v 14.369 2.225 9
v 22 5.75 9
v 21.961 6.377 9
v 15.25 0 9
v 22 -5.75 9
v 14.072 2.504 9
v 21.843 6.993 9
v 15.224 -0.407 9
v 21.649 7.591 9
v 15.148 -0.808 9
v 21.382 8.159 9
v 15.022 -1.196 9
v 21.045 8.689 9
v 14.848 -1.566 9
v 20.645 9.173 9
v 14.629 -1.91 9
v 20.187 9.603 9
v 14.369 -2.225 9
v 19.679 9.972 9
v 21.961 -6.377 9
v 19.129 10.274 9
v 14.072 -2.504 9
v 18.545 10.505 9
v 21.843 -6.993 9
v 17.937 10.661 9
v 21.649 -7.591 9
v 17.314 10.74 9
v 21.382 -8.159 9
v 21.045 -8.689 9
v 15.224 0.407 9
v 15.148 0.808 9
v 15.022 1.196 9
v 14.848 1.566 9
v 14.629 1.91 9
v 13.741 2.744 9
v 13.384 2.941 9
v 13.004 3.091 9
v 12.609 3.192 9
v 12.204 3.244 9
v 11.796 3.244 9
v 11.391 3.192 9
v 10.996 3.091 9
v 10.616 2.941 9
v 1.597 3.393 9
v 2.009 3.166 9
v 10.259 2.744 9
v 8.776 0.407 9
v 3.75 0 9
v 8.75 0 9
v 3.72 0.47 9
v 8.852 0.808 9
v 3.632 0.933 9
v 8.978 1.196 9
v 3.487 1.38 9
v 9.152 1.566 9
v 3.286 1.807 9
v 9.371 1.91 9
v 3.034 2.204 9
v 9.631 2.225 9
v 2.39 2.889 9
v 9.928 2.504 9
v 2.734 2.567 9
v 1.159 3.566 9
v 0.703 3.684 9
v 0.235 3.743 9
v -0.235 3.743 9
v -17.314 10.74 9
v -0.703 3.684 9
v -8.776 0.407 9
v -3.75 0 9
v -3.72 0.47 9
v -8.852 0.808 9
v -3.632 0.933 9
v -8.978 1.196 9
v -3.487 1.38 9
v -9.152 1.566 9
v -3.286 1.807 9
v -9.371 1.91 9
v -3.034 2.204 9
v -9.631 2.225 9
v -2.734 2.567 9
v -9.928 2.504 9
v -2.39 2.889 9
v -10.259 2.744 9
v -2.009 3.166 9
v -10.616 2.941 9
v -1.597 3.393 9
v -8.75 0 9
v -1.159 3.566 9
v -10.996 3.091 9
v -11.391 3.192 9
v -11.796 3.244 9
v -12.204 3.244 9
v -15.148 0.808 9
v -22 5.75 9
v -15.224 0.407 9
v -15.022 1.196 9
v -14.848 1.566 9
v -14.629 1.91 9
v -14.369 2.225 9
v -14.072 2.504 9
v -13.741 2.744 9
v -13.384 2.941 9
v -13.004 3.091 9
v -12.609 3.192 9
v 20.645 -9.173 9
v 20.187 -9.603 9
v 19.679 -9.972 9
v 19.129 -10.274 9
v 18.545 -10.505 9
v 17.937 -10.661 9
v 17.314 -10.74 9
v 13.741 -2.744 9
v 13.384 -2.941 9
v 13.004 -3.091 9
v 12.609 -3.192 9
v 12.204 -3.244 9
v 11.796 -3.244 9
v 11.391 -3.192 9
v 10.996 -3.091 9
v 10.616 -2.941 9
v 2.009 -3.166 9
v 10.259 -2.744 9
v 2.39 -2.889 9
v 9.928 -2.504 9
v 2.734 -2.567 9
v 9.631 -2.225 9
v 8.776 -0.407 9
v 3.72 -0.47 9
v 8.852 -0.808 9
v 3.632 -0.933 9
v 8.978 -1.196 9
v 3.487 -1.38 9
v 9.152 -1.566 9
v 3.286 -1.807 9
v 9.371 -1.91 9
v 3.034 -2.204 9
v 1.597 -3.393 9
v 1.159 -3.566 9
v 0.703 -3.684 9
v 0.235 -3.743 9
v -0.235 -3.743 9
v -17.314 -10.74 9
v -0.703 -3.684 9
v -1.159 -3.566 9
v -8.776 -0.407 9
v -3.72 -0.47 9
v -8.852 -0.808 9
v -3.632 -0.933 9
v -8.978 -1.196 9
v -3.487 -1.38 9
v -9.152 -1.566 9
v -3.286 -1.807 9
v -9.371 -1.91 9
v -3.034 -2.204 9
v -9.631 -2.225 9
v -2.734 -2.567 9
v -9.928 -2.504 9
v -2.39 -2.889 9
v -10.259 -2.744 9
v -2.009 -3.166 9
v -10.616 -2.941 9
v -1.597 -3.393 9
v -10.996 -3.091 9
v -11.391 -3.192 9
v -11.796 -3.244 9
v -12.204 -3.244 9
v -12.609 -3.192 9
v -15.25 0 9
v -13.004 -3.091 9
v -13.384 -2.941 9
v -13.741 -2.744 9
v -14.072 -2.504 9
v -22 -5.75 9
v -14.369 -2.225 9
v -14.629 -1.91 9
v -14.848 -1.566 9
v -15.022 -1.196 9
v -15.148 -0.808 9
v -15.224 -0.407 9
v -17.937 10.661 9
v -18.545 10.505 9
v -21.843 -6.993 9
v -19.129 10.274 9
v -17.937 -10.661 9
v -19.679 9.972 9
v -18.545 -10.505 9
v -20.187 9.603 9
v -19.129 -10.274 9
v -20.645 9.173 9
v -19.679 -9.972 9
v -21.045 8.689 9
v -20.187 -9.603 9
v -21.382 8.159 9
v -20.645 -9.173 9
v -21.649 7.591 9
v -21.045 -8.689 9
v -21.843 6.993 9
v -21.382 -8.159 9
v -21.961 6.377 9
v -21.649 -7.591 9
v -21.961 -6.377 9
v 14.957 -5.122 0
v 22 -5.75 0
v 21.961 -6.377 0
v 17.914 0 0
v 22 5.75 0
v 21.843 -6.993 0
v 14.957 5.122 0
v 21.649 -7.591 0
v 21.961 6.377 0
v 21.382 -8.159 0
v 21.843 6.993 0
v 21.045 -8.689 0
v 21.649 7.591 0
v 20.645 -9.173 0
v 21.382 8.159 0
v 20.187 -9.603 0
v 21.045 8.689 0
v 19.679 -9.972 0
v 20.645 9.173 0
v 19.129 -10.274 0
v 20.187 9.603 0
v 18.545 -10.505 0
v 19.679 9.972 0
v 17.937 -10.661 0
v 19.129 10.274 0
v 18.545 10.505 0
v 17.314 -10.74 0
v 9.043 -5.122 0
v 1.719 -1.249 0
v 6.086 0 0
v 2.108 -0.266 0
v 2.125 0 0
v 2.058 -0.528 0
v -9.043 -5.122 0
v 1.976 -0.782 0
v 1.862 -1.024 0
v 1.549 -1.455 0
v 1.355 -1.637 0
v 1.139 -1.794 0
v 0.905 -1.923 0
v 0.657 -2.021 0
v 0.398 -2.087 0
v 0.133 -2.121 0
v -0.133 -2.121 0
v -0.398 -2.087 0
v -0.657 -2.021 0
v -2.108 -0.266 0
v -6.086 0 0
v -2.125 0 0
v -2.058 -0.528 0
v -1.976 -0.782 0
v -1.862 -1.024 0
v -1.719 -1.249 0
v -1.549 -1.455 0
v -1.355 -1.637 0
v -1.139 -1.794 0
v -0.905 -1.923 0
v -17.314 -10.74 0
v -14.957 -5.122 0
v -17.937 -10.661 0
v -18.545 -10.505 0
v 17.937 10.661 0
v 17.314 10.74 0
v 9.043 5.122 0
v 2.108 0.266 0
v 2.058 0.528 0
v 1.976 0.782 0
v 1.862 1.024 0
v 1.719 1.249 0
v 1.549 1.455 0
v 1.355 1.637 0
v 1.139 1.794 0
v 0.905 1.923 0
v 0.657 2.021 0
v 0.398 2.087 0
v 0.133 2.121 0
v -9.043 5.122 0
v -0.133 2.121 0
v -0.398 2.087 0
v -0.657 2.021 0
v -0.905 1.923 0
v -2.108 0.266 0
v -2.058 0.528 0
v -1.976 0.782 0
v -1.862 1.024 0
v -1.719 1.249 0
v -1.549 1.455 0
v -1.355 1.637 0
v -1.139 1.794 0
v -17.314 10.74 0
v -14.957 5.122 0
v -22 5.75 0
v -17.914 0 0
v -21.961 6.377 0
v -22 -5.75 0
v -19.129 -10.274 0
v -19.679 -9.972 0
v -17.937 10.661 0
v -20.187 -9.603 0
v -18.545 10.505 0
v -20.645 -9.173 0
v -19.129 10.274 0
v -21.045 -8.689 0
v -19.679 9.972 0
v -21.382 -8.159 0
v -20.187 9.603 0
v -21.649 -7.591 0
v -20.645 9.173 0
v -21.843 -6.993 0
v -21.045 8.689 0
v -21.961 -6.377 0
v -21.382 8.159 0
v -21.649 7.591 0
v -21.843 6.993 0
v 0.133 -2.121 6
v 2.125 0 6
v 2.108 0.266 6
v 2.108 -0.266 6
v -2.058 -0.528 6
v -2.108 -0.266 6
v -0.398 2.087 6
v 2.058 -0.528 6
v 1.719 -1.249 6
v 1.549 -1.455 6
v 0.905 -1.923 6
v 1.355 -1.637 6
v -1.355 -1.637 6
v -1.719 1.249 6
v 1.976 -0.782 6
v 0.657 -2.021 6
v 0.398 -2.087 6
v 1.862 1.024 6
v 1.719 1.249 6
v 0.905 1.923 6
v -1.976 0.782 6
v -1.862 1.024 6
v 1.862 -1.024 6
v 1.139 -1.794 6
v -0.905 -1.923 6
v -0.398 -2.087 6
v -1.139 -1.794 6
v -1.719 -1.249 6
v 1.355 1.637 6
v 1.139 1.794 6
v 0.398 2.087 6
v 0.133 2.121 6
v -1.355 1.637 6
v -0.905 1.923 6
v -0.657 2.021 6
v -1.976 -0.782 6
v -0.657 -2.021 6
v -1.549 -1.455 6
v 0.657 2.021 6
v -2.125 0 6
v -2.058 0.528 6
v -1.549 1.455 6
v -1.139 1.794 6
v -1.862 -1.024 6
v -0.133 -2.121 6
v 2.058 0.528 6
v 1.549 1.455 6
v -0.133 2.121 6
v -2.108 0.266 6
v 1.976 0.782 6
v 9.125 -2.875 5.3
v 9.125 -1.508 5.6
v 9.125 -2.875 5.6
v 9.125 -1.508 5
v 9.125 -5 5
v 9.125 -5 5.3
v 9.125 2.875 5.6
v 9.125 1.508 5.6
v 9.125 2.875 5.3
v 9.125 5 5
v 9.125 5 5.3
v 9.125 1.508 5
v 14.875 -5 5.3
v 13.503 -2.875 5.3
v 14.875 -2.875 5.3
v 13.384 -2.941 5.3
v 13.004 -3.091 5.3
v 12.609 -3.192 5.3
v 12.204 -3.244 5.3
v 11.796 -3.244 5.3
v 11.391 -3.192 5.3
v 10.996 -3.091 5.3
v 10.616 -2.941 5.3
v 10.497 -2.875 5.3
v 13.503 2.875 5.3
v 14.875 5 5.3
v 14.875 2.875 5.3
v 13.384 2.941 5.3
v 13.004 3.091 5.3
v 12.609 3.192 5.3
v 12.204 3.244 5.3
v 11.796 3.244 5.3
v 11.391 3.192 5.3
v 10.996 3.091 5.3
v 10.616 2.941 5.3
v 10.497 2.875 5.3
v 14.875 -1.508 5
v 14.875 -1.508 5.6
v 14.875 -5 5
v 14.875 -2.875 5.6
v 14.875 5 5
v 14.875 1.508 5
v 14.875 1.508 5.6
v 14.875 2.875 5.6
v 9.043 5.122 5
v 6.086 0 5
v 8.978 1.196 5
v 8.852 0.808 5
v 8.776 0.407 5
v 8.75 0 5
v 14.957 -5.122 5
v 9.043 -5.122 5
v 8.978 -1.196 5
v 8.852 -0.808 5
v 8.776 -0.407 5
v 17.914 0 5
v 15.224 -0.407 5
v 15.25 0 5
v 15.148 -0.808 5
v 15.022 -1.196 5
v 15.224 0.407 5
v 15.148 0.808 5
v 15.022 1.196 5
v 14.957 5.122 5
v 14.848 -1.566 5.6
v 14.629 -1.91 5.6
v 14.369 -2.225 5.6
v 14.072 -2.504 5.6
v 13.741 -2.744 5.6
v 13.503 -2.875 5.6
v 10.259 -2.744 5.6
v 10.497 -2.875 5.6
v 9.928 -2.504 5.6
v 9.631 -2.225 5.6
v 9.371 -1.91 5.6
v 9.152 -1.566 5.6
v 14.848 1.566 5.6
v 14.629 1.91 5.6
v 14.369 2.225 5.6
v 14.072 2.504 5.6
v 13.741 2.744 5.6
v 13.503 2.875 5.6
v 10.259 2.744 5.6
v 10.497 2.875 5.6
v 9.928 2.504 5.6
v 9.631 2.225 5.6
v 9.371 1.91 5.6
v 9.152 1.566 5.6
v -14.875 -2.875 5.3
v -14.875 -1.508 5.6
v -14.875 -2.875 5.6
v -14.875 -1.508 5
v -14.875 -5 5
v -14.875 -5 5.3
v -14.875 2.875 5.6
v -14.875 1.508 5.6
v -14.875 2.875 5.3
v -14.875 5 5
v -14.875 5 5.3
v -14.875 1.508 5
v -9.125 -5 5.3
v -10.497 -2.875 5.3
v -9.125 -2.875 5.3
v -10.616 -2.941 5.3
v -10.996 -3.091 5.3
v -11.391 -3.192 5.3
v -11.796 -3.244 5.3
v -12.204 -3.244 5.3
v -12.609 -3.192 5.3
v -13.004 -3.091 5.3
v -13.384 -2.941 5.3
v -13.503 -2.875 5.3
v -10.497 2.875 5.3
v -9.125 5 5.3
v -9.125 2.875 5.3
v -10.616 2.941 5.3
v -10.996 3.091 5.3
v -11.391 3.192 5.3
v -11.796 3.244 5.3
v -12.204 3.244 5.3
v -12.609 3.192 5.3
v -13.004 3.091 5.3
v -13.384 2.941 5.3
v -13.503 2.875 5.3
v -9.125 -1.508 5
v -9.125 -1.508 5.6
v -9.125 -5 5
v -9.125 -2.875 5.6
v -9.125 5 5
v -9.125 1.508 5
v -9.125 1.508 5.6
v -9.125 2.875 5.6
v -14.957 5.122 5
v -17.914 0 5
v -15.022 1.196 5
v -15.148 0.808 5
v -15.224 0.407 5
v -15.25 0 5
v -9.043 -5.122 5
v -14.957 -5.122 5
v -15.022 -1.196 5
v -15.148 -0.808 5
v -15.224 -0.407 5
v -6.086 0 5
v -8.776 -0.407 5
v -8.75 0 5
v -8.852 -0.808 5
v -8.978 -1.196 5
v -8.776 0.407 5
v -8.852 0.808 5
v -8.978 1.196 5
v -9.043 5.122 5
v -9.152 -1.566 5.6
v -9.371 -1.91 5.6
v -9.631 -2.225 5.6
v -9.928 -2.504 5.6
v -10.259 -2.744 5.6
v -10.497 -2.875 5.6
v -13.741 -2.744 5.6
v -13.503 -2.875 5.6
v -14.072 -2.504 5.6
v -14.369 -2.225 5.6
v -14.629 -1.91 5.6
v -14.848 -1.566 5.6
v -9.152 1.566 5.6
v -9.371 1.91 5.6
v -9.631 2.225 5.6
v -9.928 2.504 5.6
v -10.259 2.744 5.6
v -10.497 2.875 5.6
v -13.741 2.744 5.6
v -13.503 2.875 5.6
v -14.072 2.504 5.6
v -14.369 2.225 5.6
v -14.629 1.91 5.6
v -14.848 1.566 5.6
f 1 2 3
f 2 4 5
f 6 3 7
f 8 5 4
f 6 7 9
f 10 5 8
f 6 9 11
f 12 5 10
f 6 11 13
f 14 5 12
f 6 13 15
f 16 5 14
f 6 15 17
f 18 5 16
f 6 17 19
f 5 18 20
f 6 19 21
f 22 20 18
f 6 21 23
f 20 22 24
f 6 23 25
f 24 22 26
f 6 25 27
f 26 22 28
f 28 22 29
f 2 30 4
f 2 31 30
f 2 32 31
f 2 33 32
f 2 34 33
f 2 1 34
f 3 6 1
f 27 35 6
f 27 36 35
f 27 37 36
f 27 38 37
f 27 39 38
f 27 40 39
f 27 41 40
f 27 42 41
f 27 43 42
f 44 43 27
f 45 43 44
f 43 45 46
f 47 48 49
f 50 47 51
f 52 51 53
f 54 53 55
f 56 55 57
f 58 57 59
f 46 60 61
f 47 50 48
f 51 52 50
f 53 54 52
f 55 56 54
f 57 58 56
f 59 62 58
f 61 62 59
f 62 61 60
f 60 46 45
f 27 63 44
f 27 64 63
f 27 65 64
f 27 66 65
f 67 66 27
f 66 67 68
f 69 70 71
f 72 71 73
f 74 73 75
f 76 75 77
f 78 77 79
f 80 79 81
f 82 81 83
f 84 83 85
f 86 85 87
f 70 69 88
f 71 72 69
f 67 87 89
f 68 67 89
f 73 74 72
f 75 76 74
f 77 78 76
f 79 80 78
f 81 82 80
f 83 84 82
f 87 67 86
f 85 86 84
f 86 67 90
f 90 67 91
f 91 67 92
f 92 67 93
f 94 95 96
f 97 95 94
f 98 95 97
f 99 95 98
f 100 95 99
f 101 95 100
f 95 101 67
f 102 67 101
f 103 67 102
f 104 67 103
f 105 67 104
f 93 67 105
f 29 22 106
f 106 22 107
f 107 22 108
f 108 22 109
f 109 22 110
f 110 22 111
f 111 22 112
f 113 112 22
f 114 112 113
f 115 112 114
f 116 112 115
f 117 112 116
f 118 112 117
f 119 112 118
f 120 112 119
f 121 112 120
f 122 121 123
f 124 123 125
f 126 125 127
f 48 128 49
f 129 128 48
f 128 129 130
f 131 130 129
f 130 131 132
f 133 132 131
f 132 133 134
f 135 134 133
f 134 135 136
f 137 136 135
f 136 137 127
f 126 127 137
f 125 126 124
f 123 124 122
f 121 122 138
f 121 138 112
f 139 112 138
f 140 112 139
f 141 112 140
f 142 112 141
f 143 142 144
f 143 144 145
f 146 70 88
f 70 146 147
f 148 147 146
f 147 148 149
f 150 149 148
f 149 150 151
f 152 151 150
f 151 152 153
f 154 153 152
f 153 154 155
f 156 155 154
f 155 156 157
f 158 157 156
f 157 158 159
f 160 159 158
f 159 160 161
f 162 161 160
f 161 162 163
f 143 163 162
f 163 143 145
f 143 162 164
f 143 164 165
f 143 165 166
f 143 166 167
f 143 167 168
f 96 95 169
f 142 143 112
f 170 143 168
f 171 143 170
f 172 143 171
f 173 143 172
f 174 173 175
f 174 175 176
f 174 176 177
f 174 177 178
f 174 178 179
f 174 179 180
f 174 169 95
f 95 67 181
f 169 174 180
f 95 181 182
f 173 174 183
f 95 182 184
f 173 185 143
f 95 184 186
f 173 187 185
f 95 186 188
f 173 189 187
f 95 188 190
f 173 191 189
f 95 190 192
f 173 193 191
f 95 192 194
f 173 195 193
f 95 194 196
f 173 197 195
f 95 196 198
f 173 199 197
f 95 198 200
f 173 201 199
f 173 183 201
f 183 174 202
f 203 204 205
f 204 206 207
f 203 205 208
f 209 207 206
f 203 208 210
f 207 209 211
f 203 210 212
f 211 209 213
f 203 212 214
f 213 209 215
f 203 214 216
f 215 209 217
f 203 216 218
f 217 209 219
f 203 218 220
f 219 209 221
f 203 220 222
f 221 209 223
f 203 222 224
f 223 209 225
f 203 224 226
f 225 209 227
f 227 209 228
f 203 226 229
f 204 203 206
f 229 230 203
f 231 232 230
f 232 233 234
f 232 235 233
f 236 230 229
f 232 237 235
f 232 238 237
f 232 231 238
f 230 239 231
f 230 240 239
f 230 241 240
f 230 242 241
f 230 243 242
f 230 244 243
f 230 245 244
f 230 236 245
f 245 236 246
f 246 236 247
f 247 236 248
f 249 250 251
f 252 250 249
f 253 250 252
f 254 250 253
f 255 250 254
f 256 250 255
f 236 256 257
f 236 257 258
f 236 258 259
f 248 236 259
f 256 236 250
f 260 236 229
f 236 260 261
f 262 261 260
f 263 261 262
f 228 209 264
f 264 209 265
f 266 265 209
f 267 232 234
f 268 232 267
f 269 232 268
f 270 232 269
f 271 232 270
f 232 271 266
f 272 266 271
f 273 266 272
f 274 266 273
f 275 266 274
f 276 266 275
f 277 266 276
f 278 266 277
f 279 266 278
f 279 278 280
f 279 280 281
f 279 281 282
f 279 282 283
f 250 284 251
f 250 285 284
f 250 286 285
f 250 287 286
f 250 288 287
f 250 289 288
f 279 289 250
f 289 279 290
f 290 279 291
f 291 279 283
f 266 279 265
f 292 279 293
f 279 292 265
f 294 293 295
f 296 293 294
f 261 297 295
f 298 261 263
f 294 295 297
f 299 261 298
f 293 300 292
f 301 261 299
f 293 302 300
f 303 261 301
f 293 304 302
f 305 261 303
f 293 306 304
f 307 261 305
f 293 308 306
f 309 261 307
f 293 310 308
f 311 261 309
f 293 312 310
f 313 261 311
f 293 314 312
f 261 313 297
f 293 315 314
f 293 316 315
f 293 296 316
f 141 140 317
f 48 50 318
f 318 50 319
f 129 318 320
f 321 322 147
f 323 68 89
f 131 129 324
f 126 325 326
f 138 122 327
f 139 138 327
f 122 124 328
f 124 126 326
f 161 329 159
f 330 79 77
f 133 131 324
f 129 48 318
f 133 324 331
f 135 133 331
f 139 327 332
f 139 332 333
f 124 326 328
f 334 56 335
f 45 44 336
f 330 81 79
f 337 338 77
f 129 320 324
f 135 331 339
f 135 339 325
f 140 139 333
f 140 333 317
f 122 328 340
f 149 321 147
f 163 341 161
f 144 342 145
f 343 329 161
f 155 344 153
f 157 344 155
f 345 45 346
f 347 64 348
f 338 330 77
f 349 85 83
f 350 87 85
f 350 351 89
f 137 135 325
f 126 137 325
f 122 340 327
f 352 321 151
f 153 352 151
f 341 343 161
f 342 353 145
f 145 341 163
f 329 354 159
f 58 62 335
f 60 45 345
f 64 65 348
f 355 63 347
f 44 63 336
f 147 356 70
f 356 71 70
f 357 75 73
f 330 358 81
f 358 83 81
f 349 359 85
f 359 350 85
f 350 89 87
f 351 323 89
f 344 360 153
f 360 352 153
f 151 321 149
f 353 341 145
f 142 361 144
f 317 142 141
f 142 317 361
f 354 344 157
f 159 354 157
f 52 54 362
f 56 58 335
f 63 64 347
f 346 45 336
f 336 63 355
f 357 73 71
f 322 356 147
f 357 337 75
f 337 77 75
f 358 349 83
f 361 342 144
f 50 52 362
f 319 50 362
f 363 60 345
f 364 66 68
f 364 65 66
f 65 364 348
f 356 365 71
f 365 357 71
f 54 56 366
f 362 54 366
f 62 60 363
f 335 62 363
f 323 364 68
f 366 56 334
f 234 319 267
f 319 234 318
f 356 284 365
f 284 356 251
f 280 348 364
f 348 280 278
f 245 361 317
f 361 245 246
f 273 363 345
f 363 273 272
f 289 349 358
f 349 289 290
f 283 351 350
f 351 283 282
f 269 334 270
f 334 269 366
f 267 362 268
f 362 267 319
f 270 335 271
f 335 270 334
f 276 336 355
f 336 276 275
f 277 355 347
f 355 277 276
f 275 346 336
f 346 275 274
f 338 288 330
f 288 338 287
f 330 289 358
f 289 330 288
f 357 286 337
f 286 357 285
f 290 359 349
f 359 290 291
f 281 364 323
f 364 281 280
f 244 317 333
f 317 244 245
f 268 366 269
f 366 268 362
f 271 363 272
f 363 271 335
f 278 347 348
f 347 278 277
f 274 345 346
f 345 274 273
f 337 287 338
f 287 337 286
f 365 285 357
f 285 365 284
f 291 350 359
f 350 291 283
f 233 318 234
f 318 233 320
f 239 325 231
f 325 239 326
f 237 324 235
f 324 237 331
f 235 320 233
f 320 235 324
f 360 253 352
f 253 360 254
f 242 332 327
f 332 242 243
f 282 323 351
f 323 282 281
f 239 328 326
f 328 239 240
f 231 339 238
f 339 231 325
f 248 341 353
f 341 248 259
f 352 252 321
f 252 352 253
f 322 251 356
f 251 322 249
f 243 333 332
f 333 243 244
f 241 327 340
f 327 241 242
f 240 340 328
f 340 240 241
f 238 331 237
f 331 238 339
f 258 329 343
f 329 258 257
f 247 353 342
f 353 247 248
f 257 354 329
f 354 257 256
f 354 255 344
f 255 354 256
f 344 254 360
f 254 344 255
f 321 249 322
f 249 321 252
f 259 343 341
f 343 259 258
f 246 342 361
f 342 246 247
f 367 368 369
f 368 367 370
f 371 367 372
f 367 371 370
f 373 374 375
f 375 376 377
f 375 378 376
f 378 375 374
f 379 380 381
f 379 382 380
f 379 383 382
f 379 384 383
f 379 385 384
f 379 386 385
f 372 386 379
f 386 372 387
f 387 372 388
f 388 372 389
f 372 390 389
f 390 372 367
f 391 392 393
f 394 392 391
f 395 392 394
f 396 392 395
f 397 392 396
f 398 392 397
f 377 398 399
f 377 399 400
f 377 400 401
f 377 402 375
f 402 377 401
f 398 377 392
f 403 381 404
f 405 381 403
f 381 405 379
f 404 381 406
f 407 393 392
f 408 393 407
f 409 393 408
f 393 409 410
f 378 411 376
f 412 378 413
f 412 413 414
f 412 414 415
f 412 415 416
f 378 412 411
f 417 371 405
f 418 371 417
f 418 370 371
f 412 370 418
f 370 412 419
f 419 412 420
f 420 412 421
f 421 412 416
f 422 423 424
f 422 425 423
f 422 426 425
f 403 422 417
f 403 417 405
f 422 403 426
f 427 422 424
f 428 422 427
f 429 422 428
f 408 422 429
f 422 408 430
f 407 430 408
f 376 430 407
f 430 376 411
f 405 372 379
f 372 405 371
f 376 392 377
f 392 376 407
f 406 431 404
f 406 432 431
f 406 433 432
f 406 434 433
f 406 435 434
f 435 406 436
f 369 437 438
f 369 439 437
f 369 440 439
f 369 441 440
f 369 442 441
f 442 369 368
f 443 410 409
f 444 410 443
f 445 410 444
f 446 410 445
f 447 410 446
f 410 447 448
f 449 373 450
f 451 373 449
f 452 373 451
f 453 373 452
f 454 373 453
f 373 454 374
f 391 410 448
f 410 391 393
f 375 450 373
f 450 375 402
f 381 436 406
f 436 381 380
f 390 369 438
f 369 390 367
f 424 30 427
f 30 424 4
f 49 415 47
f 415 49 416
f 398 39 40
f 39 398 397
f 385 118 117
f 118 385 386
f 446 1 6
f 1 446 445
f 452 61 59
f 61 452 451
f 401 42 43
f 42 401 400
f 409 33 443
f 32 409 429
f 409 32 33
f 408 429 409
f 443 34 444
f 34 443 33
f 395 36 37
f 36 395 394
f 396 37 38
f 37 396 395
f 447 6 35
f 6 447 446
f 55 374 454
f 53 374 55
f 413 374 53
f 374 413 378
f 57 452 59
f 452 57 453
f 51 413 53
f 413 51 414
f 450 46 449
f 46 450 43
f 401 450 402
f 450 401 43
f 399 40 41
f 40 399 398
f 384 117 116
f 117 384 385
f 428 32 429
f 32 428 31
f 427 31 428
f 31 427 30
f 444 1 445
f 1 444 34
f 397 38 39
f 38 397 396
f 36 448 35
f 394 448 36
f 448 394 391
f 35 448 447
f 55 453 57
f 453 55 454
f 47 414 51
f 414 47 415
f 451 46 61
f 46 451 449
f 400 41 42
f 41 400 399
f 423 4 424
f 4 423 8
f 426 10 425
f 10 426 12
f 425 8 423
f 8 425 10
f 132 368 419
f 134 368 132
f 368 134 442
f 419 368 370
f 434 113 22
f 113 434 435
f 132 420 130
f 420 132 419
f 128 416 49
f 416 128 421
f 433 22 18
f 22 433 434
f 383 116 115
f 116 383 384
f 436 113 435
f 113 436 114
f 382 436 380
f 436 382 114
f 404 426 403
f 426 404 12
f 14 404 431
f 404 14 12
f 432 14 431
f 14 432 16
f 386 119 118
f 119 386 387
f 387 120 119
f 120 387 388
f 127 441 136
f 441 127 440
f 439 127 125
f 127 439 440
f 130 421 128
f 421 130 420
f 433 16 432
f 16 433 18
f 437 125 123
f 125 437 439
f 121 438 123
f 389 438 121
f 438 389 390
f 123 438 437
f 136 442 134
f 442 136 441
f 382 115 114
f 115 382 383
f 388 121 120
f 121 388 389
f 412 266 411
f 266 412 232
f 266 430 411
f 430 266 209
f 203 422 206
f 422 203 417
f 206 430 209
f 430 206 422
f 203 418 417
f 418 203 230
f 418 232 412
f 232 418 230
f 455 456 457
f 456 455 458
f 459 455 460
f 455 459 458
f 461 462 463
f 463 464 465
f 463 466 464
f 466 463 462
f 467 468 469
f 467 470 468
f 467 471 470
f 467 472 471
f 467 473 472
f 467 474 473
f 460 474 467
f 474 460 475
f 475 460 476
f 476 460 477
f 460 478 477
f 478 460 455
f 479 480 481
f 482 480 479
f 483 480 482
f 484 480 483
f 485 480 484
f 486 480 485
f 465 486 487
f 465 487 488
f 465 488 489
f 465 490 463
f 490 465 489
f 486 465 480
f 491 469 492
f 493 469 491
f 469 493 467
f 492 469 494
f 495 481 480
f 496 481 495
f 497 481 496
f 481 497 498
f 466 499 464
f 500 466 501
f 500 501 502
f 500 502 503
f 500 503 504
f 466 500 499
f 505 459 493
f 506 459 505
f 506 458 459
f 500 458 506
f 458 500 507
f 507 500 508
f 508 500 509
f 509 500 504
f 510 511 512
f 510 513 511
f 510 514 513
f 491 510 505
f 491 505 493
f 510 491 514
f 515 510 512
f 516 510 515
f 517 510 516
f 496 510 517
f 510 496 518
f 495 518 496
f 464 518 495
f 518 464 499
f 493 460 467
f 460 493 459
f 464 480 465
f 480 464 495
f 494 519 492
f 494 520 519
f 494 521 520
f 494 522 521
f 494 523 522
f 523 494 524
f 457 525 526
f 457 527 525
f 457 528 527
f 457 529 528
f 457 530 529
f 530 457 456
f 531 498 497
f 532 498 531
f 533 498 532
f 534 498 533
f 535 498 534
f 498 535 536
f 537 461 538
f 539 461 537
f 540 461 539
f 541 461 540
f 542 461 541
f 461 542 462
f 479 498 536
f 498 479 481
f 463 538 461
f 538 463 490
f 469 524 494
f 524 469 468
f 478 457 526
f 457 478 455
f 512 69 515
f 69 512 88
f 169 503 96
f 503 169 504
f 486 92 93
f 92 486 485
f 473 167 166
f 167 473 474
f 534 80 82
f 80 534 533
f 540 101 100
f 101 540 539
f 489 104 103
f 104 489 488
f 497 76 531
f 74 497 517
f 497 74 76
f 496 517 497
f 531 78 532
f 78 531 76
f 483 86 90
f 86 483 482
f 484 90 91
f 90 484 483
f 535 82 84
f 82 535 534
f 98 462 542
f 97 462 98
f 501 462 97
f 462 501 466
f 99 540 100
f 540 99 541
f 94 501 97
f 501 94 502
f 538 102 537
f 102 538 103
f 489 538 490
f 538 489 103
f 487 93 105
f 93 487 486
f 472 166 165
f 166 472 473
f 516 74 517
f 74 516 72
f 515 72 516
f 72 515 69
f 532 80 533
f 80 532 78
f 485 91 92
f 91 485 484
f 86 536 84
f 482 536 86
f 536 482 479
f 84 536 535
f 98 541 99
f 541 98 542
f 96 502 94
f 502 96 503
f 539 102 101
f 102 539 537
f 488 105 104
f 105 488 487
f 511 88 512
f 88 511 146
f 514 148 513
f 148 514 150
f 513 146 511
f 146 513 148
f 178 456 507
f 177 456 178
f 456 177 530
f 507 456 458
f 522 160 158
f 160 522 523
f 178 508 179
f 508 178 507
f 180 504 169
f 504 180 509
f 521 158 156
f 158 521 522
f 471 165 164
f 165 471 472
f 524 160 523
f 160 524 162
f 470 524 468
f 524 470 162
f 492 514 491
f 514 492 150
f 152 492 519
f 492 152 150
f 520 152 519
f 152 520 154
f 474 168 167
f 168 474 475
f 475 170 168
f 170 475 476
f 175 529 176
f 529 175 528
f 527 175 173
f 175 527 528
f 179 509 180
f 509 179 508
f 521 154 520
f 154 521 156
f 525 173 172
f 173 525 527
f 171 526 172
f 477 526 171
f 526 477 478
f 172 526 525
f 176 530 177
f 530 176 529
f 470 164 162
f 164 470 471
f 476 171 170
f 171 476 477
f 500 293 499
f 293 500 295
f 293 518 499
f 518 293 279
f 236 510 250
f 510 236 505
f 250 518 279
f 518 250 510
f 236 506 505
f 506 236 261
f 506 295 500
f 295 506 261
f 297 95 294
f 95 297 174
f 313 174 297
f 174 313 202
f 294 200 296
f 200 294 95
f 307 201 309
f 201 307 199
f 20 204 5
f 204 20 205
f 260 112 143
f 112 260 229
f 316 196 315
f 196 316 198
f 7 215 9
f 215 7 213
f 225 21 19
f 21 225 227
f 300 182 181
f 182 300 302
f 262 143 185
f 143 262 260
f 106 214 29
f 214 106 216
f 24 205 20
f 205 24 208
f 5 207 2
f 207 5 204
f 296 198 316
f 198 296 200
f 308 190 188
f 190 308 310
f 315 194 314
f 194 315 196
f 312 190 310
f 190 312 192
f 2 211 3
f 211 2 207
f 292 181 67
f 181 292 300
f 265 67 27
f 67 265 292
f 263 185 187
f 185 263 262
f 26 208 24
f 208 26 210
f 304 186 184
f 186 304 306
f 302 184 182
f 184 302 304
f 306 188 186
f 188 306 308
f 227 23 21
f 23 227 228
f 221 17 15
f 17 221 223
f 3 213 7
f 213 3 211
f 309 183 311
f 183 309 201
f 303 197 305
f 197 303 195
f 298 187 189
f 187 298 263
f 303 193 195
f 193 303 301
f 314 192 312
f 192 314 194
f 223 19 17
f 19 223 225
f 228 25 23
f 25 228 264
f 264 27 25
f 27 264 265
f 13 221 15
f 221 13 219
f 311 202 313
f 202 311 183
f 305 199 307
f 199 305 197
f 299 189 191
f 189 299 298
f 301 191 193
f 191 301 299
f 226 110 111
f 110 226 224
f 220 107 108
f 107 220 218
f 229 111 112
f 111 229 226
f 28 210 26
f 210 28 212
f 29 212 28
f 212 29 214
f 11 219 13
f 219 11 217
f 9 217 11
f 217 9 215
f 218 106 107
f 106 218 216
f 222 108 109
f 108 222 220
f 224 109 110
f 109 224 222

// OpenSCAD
$fn = 50;


difference() {
	union() {
		hull() {
			translate(v = [-17.0000000000, 5.7500000000, 0]) {
				cylinder(h = 9, r = 5);
			}
			translate(v = [17.0000000000, 5.7500000000, 0]) {
				cylinder(h = 9, r = 5);
			}
			translate(v = [-17.0000000000, -5.7500000000, 0]) {
				cylinder(h = 9, r = 5);
			}
			translate(v = [17.0000000000, -5.7500000000, 0]) {
				cylinder(h = 9, r = 5);
			}
		}
	}
	union() {
		translate(v = [0, 0, 9]) {
			rotate(a = [0, 0, 0]) {
				difference() {
					union() {
						#translate(v = [0, 0, -9.0000000000]) {
							cylinder(h = 9, r = 2.0000000000);
						}
						#translate(v = [0, 0, -3]) {
							cylinder(h = 3, r1 = 2.1250000000, r2 = 3.7500000000);
						}
						#translate(v = [0, 0, -9.0000000000]) {
							cylinder(h = 9, r = 2.1250000000);
						}
						#translate(v = [0, 0, -9.0000000000]) {
							cylinder(h = 9, r = 2.0000000000);
						}
					}
					union();
				}
			}
		}
		translate(v = [12.0000000000, 0, 0]) {
			rotate(a = [0, 0, 0]) {
				difference() {
					union() {
						#translate(v = [-2.8750000000, -5.0000000000, -0.3000000000]) {
							cube(size = [5.7500000000, 10, 0.3000000000]);
						}
						#translate(v = [-2.8750000000, -2.8750000000, -0.6000000000]) {
							cube(size = [5.7500000000, 5.7500000000, 0.3000000000]);
						}
						#translate(v = [-2.8750000000, -5.0000000000, 5]) {
							cube(size = [5.7500000000, 10, 0.3000000000]);
						}
						#translate(v = [-2.8750000000, -2.8750000000, 5.3000000000]) {
							cube(size = [5.7500000000, 5.7500000000, 0.3000000000]);
						}
						#translate(v = [0, 0, -100.0000000000]) {
							cylinder(h = 200, r = 3.2500000000);
						}
						#linear_extrude(height = 5) {
							polygon(points = [[5.9142500000, 0.0000000000], [2.9571250000, 5.1218907443], [-2.9571250000, 5.1218907443], [-5.9142500000, 0.0000000000], [-2.9571250000, -5.1218907443], [2.9571250000, -5.1218907443]]);
						}
						#translate(v = [-2.8750000000, -5.0000000000, -0.3000000000]) {
							cube(size = [5.7500000000, 10, 0.3000000000]);
						}
						#translate(v = [-2.8750000000, -2.8750000000, -0.6000000000]) {
							cube(size = [5.7500000000, 5.7500000000, 0.3000000000]);
						}
						#translate(v = [-2.8750000000, -5.0000000000, 5]) {
							cube(size = [5.7500000000, 10, 0.3000000000]);
						}
						#translate(v = [-2.8750000000, -2.8750000000, 5.3000000000]) {
							cube(size = [5.7500000000, 5.7500000000, 0.3000000000]);
						}
						#translate(v = [0, 0, -100.0000000000]) {
							cylinder(h = 200, r = 3.2500000000);
						}
						#translate(v = [-2.8750000000, -5.0000000000, -0.3000000000]) {
							cube(size = [5.7500000000, 10, 0.3000000000]);
						}
						#translate(v = [-2.8750000000, -2.8750000000, -0.6000000000]) {
							cube(size = [5.7500000000, 5.7500000000, 0.3000000000]);
						}
						#translate(v = [-2.8750000000, -5.0000000000, 5]) {
							cube(size = [5.7500000000, 10, 0.3000000000]);
						}
						#translate(v = [-2.8750000000, -2.8750000000, 5.3000000000]) {
							cube(size = [5.7500000000, 5.7500000000, 0.3000000000]);
						}
						#translate(v = [0, 0, -100.0000000000]) {
							cylinder(h = 200, r = 3.2500000000);
						}
					}
					union();
				}
			}
		}
		translate(v = [-12.0000000000, 0, 0]) {
			rotate(a = [0, 0, 0]) {
				difference() {
					union() {
						#translate(v = [-2.8750000000, -5.0000000000, -0.3000000000]) {
							cube(size = [5.7500000000, 10, 0.3000000000]);
						}
						#translate(v = [-2.8750000000, -2.8750000000, -0.6000000000]) {
							cube(size = [5.7500000000, 5.7500000000, 0.3000000000]);
						}
						#translate(v = [-2.8750000000, -5.0000000000, 5]) {
							cube(size = [5.7500000000, 10, 0.3000000000]);
						}
						#translate(v = [-2.8750000000, -2.8750000000, 5.3000000000]) {
							cube(size = [5.7500000000, 5.7500000000, 0.3000000000]);
						}
						#translate(v = [0, 0, -100.0000000000]) {
							cylinder(h = 200, r = 3.2500000000);
						}
						#linear_extrude(height = 5) {
							polygon(points = [[5.9142500000, 0.0000000000], [2.9571250000, 5.1218907443], [-2.9571250000, 5.1218907443], [-5.9142500000, 0.0000000000], [-2.9571250000, -5.1218907443], [2.9571250000, -5.1218907443]]);
						}
						#translate(v = [-2.8750000000, -5.0000000000, -0.3000000000]) {
							cube(size = [5.7500000000, 10, 0.3000000000]);
						}
						#translate(v = [-2.8750000000, -2.8750000000, -0.6000000000]) {
							cube(size = [5.7500000000, 5.7500000000, 0.3000000000]);
						}
						#translate(v = [-2.8750000000, -5.0000000000, 5]) {
							cube(size = [5.7500000000, 10, 0.3000000000]);
						}
						#translate(v = [-2.8750000000, -2.8750000000, 5.3000000000]) {
							cube(size = [5.7500000000, 5.7500000000, 0.3000000000]);
						}
						#translate(v = [0, 0, -100.0000000000]) {
							cylinder(h = 200, r = 3.2500000000);
						}
						#translate(v = [-2.8750000000, -5.0000000000, -0.3000000000]) {
							cube(size = [5.7500000000, 10, 0.3000000000]);
						}
						#translate(v = [-2.8750000000, -2.8750000000, -0.6000000000]) {
							cube(size = [5.7500000000, 5.7500000000, 0.3000000000]);
						}
						#translate(v = [-2.8750000000, -5.0000000000, 5]) {
							cube(size = [5.7500000000, 10, 0.3000000000]);
						}
						#translate(v = [-2.8750000000, -2.8750000000, 5.3000000000]) {
							cube(size = [5.7500000000, 5.7500000000, 0.3000000000]);
						}
						#translate(v = [0, 0, -100.0000000000]) {
							cylinder(h = 200, r = 3.2500000000);
						}
					}
					union();
				}
			}
		}
	}
}
